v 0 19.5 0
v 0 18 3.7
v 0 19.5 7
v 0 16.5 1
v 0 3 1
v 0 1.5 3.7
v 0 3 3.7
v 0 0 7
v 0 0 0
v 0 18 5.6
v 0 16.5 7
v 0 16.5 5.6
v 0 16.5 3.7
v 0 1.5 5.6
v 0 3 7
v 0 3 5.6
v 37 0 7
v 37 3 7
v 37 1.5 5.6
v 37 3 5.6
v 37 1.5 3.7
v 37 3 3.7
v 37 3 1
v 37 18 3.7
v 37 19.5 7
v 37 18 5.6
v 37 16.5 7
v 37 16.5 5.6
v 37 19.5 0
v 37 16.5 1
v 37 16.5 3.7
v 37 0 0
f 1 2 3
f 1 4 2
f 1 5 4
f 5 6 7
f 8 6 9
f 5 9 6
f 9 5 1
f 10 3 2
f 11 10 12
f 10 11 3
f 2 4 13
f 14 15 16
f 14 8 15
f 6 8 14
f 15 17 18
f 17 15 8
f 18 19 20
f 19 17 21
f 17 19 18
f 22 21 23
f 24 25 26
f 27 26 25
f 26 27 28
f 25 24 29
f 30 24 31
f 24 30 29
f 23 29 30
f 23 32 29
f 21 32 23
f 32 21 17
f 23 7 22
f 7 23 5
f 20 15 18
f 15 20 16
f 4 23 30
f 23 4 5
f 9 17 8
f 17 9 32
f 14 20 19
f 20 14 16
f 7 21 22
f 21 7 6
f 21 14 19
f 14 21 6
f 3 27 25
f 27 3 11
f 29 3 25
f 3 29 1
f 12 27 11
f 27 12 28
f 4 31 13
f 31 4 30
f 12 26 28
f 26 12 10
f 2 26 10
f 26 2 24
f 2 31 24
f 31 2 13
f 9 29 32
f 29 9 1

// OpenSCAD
// ============================================================
// Buck Converter Socket — Test Print
// Quick prototype to verify fit before printing full platform
// ============================================================

$fn = 60;

// Buck Converter Board
buck_l  = 37;
buck_w  = 17;
buck_t  = 1.5;

// Socket parameters (same as main platform)
buck_socket_h    = 6;       // Reduced height for quick test print
buck_socket_wall = 3;
buck_clearance   = -3.5;    // 13.5mm inner gap

groove_d   = buck_socket_wall / 2;   // 1.5mm
groove_gap = 0.3;
groove_h   = buck_t + groove_gap;    // 1.8mm
lip_h      = 1.5;
ledge_h    = buck_socket_h - groove_h - lip_h;
inner_w    = buck_w + buck_clearance; // 13.5mm
w          = buck_socket_wall;

// Base plate
base_t = 1;

// --- Base ---
cube([buck_l, inner_w + 2 * w, base_t]);

// --- Front rail ---
translate([0, 0, base_t])
    difference() {
        cube([buck_l, w, buck_socket_h]);
        translate([-0.1, w - groove_d, ledge_h])
            cube([buck_l + 0.2, groove_d + 0.1, groove_h + 0.1]);
    }

// --- Back rail ---
translate([0, w + inner_w, base_t])
    difference() {
        cube([buck_l, w, buck_socket_h]);
        translate([-0.1, -0.1, ledge_h])
            cube([buck_l + 0.2, groove_d + 0.1, groove_h + 0.1]);
    }

echo(str("Socket size: ", buck_l, " x ", inner_w + 2*w, " x ", base_t + buck_socket_h, " mm"));
echo(str("Inner gap: ", inner_w, " mm (board: ", buck_w, " mm)"));
echo(str("Groove: ", groove_h, "mm tall, ", groove_d, "mm deep, ledge at ", ledge_h, "mm"));
